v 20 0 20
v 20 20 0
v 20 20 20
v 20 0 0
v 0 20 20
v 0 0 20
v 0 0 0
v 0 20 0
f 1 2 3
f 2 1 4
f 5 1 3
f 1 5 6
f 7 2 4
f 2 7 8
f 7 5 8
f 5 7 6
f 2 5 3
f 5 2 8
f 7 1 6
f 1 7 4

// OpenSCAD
// Define the dimensions of the cubic block
cube_size = 20; // Set the size of the cube (20x20x20)

// Create the cubic block
cube([cube_size, cube_size, cube_size]);
